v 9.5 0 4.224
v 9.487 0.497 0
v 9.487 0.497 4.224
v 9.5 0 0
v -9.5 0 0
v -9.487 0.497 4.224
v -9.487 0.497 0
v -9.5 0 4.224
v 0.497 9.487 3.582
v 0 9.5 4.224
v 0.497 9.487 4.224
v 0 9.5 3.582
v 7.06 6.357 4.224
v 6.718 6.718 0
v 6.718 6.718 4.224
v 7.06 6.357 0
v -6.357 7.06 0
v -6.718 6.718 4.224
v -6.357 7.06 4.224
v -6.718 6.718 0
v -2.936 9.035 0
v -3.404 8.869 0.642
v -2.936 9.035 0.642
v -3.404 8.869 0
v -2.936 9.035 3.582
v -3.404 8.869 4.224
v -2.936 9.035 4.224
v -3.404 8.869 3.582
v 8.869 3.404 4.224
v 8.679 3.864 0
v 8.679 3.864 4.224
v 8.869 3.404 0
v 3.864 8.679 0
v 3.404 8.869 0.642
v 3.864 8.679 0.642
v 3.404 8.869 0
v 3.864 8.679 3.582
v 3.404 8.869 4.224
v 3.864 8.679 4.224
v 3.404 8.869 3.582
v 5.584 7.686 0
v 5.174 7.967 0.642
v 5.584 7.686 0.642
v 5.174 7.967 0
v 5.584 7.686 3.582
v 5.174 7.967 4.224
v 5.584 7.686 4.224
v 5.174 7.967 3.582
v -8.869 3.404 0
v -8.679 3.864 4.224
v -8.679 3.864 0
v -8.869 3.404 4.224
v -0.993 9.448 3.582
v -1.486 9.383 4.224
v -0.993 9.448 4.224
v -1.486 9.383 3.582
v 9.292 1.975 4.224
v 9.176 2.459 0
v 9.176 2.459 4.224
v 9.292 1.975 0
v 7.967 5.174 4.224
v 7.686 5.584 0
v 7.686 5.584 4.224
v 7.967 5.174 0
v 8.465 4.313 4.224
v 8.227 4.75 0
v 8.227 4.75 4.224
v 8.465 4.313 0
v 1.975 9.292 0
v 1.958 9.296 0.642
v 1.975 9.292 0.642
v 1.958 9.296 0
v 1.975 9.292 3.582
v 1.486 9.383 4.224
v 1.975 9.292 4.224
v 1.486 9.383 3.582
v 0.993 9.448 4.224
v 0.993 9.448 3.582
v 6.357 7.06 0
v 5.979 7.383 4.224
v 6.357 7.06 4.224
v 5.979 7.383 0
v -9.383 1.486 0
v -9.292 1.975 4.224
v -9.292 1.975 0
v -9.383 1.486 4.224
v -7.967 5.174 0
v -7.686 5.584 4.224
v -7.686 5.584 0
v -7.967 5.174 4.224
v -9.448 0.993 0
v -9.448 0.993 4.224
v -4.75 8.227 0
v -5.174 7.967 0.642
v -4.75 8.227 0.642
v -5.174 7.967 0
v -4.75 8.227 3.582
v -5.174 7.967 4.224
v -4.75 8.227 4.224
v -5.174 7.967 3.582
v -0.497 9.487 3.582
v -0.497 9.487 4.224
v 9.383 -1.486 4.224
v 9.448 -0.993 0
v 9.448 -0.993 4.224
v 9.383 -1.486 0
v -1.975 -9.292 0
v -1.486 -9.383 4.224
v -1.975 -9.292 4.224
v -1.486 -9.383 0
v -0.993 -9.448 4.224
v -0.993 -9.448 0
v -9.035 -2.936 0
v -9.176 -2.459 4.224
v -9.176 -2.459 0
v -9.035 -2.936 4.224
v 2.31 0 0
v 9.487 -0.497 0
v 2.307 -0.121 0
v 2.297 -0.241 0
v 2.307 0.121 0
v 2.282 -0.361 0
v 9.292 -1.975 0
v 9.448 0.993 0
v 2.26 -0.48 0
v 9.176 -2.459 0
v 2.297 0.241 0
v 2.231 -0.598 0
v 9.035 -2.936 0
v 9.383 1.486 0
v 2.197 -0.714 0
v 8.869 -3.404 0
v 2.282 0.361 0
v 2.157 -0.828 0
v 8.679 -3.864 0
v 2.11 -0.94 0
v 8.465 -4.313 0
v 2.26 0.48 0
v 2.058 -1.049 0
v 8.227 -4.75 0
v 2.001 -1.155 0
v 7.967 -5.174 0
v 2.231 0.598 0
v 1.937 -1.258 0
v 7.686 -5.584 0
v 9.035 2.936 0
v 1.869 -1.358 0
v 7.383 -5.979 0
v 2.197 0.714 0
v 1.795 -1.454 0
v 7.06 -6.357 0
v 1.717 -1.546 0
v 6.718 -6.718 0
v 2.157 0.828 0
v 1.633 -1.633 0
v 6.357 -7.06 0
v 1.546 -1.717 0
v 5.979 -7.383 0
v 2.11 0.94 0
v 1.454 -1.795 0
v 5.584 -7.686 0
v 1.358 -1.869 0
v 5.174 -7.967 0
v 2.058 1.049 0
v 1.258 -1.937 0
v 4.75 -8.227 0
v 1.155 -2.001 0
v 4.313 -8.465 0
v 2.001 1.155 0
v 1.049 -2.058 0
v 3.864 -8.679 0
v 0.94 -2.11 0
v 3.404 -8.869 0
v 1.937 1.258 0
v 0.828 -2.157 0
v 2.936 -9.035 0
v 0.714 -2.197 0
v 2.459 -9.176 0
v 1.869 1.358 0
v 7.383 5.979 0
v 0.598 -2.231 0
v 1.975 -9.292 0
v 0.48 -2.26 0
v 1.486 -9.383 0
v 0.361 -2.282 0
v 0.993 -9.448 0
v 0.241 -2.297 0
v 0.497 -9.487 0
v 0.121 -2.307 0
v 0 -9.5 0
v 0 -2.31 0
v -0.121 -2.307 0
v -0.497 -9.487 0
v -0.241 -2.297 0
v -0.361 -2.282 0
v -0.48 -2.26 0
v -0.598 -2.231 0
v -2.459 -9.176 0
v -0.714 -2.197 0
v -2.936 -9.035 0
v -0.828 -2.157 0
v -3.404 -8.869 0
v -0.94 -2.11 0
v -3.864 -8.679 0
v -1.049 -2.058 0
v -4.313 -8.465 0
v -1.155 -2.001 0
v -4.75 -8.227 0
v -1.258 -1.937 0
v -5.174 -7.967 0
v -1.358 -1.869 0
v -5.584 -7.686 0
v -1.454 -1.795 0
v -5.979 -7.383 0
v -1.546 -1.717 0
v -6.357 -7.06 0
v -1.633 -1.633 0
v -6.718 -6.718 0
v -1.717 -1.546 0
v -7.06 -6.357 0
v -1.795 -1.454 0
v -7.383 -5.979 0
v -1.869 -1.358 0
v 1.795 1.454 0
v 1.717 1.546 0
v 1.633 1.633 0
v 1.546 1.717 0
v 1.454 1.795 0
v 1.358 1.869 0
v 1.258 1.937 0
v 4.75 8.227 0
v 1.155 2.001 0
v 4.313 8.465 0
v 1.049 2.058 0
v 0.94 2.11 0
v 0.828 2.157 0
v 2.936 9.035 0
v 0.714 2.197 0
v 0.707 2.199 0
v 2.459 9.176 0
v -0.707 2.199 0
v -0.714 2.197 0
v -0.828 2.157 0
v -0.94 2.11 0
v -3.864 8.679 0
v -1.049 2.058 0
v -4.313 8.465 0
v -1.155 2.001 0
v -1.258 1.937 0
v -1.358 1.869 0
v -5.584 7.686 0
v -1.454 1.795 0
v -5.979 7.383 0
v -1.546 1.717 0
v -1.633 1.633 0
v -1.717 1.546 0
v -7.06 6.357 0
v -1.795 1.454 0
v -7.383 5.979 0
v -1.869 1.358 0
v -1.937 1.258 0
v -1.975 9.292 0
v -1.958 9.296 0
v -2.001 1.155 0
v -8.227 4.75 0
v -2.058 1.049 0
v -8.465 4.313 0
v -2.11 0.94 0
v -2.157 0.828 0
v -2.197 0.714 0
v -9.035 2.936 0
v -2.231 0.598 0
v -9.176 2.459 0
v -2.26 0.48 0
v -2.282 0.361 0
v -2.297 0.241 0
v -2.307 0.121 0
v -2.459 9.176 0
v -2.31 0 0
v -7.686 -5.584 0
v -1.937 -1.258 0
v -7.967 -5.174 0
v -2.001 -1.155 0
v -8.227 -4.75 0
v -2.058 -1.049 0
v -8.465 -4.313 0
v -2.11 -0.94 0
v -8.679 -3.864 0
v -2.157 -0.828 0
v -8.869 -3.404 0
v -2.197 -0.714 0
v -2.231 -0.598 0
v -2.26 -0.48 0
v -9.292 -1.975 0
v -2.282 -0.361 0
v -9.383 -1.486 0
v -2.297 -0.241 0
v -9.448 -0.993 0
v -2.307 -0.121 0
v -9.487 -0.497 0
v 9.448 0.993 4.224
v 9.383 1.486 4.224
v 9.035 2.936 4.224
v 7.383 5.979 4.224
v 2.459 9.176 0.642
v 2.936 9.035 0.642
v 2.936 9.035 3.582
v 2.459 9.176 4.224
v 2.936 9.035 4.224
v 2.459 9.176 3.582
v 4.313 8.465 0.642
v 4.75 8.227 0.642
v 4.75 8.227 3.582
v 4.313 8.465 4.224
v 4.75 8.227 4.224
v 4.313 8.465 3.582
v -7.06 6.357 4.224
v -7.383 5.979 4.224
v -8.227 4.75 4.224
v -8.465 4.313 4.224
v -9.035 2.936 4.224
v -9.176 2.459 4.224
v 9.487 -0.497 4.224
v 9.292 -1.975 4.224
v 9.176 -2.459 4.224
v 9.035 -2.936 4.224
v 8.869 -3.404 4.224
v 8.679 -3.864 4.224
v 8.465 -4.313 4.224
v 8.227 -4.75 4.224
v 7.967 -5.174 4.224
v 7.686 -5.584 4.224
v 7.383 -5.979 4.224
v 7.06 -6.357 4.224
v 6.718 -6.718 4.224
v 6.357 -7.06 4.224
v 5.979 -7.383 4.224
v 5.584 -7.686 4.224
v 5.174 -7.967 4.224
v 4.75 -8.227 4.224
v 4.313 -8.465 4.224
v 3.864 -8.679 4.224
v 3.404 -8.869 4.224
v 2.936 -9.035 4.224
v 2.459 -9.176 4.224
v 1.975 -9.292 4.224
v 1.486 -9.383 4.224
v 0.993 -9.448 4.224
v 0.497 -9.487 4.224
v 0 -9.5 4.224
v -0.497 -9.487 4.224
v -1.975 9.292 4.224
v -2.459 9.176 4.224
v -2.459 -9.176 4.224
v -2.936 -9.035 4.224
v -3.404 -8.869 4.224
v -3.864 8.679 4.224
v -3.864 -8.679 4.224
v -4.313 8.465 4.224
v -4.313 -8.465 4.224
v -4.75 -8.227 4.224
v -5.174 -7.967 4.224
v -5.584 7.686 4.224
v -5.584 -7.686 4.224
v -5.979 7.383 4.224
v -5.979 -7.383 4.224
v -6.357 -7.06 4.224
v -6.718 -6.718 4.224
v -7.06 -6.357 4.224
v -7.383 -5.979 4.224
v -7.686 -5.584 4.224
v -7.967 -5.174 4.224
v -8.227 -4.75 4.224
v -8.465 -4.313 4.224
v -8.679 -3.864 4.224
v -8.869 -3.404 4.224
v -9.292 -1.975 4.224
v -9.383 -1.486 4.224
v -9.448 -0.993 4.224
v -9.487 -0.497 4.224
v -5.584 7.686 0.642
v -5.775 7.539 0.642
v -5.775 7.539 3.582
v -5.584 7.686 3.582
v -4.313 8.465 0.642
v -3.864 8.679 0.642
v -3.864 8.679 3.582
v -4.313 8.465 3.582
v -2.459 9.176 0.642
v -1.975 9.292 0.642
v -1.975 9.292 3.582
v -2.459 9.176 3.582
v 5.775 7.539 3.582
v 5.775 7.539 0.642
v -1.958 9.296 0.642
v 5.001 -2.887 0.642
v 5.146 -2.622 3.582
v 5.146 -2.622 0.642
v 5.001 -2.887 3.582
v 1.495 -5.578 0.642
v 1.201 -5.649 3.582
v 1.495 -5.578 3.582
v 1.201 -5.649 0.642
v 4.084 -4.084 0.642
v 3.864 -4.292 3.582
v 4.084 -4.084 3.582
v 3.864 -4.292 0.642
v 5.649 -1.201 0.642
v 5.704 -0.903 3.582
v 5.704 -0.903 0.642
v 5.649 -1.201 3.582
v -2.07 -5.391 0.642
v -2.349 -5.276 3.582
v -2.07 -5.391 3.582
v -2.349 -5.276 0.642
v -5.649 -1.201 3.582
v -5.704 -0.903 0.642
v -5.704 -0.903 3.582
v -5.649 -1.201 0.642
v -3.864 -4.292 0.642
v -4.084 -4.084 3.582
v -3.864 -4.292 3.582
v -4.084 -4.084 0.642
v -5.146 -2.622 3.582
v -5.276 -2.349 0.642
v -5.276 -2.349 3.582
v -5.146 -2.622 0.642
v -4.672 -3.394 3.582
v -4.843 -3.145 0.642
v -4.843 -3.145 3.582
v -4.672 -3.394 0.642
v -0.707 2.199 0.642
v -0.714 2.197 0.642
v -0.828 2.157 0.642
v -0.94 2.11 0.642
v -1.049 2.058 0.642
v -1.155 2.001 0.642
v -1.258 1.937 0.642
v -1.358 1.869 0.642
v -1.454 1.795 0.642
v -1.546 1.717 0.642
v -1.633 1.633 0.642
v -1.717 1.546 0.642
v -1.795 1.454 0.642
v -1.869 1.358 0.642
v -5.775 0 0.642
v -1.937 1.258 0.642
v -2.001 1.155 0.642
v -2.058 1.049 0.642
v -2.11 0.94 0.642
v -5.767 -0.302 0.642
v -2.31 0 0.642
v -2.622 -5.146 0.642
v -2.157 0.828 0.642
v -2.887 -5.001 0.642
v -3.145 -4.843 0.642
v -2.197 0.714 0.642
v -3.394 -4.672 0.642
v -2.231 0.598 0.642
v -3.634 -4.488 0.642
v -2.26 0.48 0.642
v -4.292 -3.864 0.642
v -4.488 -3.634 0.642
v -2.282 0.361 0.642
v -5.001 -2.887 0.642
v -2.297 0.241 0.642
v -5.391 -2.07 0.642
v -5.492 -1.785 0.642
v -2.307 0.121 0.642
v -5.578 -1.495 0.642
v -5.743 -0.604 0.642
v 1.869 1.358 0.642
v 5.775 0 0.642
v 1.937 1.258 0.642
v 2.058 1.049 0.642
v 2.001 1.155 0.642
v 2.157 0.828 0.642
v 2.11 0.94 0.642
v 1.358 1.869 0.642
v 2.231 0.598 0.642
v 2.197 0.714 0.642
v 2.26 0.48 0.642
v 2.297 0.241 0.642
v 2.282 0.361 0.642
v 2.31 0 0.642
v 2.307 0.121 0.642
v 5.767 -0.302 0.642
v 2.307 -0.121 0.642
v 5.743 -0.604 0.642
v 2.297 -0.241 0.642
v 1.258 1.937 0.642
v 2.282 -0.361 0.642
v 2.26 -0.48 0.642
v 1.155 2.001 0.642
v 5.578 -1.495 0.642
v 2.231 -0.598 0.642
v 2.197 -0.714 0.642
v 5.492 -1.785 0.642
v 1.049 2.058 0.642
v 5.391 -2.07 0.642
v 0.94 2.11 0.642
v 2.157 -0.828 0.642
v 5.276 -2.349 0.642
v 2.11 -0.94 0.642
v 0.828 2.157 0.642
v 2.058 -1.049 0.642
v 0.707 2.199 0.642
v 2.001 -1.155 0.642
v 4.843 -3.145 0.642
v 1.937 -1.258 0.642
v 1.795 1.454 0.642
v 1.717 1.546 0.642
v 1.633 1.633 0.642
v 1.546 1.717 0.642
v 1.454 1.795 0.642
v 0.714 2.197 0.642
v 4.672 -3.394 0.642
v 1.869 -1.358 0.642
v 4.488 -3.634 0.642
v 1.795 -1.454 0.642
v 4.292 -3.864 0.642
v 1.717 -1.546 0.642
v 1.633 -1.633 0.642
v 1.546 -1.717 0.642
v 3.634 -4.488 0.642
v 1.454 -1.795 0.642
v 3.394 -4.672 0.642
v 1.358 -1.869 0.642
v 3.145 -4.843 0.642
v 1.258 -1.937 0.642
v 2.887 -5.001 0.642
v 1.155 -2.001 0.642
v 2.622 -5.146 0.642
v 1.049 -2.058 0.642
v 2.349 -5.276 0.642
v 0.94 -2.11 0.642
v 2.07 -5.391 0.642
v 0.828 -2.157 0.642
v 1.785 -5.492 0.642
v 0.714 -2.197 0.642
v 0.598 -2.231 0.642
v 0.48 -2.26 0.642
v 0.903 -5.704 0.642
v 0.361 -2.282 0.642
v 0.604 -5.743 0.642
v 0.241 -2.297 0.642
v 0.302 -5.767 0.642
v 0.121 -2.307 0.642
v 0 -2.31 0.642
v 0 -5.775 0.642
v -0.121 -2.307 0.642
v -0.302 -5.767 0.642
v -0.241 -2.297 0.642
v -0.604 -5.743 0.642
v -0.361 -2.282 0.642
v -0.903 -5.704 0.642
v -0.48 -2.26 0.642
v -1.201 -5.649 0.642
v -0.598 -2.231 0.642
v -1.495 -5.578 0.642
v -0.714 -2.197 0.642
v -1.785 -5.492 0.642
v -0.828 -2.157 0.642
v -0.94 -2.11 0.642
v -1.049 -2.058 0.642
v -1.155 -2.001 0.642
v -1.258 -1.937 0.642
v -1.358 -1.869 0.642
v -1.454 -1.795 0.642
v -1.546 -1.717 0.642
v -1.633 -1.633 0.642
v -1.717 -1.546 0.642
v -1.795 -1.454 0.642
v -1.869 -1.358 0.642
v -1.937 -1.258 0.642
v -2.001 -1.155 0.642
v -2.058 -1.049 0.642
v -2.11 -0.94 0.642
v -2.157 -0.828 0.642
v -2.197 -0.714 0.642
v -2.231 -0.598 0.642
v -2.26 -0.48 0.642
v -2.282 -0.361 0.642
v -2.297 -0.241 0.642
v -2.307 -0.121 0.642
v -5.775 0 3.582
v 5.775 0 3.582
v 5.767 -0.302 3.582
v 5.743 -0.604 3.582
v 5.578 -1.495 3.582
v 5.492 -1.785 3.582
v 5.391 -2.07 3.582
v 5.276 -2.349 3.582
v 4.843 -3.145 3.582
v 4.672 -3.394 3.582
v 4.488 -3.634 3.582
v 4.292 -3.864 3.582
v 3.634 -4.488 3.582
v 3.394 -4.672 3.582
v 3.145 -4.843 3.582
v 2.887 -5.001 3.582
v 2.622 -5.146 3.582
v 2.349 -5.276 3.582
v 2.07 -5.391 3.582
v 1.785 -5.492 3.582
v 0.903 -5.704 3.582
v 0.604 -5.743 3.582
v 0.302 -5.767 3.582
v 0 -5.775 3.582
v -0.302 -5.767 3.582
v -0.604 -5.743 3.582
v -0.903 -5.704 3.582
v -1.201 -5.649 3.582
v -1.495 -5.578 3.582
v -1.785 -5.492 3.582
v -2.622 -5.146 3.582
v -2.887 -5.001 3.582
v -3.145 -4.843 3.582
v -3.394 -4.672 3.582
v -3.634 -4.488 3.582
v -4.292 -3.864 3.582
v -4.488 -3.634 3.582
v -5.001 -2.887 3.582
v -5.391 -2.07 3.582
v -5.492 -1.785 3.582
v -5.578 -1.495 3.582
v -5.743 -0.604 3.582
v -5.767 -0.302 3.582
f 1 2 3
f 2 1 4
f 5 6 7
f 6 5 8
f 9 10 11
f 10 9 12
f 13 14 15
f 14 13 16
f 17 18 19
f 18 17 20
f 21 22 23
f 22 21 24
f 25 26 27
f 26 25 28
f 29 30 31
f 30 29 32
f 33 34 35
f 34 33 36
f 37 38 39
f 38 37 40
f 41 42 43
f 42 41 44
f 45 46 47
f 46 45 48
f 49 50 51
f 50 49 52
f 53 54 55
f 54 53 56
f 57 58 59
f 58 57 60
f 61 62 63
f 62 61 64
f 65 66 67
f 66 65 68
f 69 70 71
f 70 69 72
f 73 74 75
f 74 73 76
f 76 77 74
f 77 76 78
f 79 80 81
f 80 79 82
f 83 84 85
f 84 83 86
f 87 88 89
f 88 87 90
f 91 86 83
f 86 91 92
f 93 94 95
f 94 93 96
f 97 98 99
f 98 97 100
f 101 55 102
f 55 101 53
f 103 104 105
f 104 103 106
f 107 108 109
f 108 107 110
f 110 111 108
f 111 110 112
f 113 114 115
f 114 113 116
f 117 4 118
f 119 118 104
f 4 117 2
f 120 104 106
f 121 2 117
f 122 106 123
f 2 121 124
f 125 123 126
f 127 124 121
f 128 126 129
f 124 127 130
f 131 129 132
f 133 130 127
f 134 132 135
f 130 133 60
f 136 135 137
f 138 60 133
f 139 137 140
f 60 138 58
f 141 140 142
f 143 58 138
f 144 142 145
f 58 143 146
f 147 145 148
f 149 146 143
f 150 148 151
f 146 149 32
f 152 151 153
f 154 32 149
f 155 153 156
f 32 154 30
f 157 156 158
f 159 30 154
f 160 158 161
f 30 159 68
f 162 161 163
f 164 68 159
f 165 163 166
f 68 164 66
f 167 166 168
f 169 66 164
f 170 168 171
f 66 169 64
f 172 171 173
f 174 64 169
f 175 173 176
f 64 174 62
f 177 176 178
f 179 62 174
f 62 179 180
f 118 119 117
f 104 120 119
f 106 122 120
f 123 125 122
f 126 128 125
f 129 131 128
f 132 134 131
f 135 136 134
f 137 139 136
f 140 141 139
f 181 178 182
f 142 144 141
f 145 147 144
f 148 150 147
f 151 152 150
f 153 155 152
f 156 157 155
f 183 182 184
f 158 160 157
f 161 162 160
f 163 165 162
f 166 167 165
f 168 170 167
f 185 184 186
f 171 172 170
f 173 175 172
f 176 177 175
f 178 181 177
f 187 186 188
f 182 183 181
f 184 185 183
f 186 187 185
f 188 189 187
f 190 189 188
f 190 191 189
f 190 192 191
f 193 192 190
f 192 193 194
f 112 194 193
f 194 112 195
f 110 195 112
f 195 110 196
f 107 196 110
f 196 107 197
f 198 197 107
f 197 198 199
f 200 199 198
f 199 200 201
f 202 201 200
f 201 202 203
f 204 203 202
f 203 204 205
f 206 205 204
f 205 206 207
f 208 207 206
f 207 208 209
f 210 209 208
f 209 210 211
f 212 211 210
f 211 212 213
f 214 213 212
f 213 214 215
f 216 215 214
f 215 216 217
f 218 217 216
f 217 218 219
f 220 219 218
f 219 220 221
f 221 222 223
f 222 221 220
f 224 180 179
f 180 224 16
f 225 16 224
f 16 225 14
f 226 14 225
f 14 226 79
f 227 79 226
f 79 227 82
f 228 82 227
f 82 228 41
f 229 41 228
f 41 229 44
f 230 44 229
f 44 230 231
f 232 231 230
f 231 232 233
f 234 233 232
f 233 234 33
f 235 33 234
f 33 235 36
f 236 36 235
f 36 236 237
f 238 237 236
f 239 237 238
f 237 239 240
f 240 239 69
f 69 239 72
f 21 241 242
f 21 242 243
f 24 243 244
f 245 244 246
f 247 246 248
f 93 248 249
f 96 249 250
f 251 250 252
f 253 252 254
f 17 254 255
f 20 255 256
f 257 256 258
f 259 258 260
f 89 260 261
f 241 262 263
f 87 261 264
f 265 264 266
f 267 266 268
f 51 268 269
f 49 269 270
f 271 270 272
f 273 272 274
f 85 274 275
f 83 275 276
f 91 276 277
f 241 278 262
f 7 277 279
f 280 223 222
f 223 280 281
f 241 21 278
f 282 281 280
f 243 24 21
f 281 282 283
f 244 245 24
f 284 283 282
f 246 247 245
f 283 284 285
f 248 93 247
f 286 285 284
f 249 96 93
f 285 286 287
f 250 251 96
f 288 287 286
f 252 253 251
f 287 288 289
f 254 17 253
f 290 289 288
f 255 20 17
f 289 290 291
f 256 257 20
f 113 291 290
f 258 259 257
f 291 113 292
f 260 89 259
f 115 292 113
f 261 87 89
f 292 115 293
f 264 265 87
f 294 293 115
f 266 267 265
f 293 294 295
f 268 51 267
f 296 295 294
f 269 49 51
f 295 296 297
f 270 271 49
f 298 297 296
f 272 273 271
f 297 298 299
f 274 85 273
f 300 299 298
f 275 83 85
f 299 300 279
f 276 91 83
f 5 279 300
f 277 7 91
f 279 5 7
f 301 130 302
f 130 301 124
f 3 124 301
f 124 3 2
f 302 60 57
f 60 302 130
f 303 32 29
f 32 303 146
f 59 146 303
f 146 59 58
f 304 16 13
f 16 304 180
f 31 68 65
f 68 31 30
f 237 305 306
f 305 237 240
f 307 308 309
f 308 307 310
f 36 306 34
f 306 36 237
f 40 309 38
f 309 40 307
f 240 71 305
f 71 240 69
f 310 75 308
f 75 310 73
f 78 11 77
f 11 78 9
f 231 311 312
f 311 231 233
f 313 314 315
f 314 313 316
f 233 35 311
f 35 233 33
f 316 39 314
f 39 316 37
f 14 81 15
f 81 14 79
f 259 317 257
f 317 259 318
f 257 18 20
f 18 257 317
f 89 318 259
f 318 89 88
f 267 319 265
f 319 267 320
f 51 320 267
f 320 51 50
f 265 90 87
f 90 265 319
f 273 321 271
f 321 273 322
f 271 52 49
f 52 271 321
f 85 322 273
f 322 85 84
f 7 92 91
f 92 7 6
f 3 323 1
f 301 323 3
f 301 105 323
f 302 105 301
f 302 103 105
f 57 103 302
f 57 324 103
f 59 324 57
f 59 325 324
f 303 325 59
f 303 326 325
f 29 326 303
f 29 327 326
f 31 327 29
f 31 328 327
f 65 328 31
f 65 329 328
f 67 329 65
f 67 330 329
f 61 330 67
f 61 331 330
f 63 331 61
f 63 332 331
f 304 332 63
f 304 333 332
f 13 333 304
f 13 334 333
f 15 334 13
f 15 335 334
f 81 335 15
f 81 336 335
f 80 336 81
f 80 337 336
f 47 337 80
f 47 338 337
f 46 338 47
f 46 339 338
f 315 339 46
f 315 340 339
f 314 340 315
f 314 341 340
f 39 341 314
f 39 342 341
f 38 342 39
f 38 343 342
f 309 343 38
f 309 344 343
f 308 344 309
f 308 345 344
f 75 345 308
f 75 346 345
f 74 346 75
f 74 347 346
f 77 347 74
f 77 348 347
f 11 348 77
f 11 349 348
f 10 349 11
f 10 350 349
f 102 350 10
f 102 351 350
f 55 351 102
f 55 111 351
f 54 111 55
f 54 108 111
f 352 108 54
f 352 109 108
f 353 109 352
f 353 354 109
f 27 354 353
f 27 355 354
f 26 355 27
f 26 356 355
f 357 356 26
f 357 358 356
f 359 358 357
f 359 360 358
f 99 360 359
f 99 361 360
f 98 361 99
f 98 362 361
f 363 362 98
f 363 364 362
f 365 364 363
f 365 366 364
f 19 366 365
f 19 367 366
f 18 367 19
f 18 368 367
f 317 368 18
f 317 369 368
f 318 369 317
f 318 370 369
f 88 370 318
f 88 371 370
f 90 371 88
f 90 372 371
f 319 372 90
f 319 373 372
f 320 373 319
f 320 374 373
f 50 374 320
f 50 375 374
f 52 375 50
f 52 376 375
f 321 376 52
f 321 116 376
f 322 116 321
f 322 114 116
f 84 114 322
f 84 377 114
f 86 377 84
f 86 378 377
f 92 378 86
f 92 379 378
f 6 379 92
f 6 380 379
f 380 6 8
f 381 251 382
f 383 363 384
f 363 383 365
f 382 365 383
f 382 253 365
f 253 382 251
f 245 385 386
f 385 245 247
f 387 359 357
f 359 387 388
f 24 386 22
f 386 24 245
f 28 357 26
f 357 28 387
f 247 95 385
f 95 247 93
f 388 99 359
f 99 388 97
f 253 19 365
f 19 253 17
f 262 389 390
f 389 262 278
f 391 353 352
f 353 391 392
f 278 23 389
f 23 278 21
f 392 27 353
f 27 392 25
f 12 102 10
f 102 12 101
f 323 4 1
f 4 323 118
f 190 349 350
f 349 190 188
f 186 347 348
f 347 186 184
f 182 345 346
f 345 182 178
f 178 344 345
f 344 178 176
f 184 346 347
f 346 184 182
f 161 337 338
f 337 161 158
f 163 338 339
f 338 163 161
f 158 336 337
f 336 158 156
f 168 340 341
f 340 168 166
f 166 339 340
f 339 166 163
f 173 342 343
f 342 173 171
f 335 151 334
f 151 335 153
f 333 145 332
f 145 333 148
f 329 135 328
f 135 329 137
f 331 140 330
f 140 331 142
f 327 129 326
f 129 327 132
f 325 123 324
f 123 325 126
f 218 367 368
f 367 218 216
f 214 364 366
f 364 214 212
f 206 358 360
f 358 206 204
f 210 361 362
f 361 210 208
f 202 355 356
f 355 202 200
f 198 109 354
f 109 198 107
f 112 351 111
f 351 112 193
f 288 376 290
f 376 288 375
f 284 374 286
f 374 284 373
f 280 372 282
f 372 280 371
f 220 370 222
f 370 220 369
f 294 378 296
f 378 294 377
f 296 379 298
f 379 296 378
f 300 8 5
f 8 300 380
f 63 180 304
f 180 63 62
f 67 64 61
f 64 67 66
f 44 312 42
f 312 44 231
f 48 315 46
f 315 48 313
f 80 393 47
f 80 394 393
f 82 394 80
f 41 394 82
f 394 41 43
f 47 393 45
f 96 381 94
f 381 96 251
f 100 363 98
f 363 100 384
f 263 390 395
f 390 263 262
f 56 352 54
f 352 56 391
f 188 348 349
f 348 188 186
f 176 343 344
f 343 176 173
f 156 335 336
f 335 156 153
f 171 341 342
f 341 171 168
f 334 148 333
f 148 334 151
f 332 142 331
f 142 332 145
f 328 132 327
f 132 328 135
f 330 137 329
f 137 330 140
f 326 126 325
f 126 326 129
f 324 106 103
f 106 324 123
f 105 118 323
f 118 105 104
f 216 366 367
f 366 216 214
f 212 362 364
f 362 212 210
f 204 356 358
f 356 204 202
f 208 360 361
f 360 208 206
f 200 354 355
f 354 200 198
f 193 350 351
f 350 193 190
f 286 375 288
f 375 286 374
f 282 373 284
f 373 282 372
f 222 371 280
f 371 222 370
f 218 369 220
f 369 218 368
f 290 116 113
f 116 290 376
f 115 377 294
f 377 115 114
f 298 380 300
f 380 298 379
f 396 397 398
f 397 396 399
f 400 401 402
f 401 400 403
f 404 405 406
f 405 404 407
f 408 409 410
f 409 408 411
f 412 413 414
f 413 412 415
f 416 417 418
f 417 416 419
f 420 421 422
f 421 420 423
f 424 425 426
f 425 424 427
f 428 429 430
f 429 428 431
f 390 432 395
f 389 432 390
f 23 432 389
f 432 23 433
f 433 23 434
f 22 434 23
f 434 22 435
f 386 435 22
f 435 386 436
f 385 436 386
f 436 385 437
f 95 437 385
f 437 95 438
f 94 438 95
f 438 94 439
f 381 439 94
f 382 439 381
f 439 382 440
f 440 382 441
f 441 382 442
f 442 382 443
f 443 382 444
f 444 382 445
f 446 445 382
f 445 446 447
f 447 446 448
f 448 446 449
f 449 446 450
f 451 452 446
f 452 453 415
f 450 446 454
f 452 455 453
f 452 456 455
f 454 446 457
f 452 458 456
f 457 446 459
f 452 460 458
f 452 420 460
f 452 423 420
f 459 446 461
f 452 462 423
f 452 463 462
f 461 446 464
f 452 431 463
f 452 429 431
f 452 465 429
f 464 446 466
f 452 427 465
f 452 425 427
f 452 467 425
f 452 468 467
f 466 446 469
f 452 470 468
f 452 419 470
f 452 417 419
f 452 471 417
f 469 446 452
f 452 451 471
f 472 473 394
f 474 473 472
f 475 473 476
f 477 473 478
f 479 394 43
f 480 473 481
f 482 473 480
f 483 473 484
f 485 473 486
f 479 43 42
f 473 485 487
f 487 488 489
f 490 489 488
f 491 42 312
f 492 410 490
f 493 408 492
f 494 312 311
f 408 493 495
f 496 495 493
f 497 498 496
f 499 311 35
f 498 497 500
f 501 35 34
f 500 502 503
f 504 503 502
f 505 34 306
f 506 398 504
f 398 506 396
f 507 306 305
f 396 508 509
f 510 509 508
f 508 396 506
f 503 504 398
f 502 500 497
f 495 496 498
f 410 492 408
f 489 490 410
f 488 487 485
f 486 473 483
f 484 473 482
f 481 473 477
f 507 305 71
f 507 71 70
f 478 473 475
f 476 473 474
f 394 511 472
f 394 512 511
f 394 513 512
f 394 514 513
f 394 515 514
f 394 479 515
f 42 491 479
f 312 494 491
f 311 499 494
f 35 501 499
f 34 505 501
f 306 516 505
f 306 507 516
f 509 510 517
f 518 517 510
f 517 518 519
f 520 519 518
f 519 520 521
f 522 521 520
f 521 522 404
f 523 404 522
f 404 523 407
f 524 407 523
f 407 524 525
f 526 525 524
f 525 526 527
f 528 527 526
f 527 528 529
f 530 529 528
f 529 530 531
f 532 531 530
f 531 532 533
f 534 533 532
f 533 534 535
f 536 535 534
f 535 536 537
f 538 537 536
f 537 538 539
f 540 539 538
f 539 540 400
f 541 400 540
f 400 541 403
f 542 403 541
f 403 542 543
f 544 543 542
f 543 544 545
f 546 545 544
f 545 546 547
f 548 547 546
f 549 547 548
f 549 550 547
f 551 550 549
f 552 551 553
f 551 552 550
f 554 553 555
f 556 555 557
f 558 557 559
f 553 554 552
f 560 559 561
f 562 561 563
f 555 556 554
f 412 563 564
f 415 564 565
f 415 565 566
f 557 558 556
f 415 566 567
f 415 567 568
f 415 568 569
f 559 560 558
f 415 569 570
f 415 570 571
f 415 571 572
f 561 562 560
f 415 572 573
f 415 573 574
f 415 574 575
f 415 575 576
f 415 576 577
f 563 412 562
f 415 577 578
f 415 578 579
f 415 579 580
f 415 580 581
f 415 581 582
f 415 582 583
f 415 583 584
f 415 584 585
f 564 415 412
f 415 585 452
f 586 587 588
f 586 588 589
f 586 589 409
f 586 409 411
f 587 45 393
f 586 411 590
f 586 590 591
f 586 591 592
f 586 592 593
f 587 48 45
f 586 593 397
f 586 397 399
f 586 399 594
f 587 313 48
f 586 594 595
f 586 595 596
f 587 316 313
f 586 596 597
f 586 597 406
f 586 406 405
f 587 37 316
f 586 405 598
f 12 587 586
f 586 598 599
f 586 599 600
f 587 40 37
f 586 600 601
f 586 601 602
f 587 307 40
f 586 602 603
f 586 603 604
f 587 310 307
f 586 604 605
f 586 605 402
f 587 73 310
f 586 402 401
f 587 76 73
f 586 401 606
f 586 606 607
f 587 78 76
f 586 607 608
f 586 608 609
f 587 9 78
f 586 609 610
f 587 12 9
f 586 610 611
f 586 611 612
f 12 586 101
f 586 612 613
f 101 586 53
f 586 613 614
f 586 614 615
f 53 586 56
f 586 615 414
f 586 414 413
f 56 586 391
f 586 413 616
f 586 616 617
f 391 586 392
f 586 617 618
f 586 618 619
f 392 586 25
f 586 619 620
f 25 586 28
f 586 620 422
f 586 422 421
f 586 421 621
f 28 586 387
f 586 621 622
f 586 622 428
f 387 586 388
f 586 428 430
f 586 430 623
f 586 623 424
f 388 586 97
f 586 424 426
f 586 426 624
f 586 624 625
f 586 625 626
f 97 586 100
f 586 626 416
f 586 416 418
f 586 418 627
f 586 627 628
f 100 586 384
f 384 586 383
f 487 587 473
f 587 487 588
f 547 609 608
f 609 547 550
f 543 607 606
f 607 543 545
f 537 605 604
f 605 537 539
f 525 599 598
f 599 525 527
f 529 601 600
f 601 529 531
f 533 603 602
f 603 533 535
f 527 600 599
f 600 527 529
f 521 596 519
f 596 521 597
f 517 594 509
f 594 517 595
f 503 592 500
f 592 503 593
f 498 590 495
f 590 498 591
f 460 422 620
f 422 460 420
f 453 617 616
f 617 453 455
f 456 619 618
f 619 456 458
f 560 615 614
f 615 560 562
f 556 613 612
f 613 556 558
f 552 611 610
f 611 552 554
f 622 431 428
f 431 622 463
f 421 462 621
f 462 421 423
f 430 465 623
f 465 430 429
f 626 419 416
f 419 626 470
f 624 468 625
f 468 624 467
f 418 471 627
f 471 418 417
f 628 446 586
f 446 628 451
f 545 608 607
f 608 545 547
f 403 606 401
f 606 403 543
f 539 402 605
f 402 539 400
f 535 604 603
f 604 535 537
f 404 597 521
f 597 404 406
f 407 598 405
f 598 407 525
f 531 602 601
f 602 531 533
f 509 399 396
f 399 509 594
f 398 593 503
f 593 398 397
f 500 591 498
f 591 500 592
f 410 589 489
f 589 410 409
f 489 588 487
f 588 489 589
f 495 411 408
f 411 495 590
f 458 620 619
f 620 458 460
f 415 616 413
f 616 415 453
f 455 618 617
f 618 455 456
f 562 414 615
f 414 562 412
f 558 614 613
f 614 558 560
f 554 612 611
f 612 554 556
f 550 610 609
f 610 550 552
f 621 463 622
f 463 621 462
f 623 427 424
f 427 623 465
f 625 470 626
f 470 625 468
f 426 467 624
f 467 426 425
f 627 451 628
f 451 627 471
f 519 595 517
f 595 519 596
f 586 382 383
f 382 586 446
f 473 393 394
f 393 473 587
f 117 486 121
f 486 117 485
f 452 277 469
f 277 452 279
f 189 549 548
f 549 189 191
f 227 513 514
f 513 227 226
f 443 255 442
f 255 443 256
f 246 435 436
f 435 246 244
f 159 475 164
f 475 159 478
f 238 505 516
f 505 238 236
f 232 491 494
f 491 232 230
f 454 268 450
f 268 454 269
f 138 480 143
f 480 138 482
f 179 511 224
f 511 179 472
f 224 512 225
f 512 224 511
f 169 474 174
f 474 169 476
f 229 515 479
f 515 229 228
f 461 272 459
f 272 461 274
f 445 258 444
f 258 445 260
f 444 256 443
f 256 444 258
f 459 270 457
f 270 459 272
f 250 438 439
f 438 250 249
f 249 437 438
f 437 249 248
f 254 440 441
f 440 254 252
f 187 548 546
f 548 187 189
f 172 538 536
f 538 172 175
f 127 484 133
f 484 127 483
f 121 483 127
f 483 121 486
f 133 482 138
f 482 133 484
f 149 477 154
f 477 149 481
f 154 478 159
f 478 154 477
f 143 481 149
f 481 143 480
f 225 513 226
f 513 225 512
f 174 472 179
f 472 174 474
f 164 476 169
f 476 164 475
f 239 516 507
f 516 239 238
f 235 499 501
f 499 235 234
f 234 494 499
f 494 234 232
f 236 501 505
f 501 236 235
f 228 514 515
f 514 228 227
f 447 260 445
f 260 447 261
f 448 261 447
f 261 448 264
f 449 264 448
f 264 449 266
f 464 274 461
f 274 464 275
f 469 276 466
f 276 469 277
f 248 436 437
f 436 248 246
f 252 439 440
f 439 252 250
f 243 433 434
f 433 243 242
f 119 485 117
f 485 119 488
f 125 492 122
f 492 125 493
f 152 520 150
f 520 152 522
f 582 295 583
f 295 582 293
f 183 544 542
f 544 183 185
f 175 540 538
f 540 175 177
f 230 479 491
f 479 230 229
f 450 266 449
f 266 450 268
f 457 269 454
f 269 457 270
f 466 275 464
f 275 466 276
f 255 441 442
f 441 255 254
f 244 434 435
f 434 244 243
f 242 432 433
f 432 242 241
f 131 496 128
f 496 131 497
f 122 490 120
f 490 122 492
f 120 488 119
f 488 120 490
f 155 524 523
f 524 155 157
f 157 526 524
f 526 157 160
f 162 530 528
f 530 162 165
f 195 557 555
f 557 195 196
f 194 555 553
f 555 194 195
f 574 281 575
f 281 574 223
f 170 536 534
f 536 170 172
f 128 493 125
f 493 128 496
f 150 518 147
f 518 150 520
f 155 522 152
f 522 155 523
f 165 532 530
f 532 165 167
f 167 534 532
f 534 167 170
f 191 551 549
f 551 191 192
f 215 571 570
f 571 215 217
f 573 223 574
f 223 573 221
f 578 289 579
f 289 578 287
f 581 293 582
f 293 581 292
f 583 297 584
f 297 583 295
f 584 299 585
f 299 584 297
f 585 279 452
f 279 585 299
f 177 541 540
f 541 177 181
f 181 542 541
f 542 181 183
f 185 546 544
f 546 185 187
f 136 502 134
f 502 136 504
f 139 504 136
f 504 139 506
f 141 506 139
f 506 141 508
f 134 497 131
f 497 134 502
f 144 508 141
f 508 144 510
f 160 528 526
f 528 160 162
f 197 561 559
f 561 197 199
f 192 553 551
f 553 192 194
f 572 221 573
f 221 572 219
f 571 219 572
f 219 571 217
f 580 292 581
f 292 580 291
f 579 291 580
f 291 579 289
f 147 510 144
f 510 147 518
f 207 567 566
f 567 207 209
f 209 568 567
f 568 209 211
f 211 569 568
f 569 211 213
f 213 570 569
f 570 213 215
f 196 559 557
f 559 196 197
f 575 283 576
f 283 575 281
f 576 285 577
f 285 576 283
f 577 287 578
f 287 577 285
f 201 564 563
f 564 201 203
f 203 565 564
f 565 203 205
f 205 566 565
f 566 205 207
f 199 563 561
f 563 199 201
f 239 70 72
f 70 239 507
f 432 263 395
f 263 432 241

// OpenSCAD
// ButtonVelcroAdapter_Inside_v1C.scad
// Copyright 2022 by Ronald L. Nelson II
// ron.nelson.ii@gmail.com
// sybarite.us

// All measurements are in MM

//The Belfry OpenSCAD Library
//https://github.com/revarbat/BOSL
include <BOSL/constants.scad>
use <BOSL/shapes.scad>
use <BOSL/transforms.scad>

buttonHeight = 2.64;
buttonDiameter = 11.25;
buttonWiggleRoom = 0.30;
velcroDiameter = 19;

adapterHeight = (buttonHeight * 1.60);
$fn=120; //default circle smoothness


difference(){

  union(){
  //base object
  color("blue") cylinder(h=adapterHeight, d=velcroDiameter);
  }

  //subtractions ---------------------------------------

  //subtract out space for button in middle
  color("red") 
   translate([0,0,(adapterHeight/2)-((buttonHeight+buttonWiggleRoom)/2)])
    cylinder(h=(buttonHeight+buttonWiggleRoom), d=(buttonDiameter+buttonWiggleRoom));

  //subtract out slot for button to slide into
  color("pink")
   translate([-((buttonDiameter+buttonWiggleRoom)/2), 0, (adapterHeight/2)-((buttonHeight+buttonWiggleRoom)/2)])
    cube([(buttonDiameter+buttonWiggleRoom), (velcroDiameter), (buttonHeight+buttonWiggleRoom)]);
  
  //subtract out keyhole slot for button thread attachment
  color("hotpink") cylinder(h=buttonHeight, d=(buttonDiameter+buttonWiggleRoom)*0.40);
  color("hotpink") translate([0,63,0]) rotate([90,0, 0]) teardrop(r=buttonDiameter, h=2, ang=10);

}//difference
